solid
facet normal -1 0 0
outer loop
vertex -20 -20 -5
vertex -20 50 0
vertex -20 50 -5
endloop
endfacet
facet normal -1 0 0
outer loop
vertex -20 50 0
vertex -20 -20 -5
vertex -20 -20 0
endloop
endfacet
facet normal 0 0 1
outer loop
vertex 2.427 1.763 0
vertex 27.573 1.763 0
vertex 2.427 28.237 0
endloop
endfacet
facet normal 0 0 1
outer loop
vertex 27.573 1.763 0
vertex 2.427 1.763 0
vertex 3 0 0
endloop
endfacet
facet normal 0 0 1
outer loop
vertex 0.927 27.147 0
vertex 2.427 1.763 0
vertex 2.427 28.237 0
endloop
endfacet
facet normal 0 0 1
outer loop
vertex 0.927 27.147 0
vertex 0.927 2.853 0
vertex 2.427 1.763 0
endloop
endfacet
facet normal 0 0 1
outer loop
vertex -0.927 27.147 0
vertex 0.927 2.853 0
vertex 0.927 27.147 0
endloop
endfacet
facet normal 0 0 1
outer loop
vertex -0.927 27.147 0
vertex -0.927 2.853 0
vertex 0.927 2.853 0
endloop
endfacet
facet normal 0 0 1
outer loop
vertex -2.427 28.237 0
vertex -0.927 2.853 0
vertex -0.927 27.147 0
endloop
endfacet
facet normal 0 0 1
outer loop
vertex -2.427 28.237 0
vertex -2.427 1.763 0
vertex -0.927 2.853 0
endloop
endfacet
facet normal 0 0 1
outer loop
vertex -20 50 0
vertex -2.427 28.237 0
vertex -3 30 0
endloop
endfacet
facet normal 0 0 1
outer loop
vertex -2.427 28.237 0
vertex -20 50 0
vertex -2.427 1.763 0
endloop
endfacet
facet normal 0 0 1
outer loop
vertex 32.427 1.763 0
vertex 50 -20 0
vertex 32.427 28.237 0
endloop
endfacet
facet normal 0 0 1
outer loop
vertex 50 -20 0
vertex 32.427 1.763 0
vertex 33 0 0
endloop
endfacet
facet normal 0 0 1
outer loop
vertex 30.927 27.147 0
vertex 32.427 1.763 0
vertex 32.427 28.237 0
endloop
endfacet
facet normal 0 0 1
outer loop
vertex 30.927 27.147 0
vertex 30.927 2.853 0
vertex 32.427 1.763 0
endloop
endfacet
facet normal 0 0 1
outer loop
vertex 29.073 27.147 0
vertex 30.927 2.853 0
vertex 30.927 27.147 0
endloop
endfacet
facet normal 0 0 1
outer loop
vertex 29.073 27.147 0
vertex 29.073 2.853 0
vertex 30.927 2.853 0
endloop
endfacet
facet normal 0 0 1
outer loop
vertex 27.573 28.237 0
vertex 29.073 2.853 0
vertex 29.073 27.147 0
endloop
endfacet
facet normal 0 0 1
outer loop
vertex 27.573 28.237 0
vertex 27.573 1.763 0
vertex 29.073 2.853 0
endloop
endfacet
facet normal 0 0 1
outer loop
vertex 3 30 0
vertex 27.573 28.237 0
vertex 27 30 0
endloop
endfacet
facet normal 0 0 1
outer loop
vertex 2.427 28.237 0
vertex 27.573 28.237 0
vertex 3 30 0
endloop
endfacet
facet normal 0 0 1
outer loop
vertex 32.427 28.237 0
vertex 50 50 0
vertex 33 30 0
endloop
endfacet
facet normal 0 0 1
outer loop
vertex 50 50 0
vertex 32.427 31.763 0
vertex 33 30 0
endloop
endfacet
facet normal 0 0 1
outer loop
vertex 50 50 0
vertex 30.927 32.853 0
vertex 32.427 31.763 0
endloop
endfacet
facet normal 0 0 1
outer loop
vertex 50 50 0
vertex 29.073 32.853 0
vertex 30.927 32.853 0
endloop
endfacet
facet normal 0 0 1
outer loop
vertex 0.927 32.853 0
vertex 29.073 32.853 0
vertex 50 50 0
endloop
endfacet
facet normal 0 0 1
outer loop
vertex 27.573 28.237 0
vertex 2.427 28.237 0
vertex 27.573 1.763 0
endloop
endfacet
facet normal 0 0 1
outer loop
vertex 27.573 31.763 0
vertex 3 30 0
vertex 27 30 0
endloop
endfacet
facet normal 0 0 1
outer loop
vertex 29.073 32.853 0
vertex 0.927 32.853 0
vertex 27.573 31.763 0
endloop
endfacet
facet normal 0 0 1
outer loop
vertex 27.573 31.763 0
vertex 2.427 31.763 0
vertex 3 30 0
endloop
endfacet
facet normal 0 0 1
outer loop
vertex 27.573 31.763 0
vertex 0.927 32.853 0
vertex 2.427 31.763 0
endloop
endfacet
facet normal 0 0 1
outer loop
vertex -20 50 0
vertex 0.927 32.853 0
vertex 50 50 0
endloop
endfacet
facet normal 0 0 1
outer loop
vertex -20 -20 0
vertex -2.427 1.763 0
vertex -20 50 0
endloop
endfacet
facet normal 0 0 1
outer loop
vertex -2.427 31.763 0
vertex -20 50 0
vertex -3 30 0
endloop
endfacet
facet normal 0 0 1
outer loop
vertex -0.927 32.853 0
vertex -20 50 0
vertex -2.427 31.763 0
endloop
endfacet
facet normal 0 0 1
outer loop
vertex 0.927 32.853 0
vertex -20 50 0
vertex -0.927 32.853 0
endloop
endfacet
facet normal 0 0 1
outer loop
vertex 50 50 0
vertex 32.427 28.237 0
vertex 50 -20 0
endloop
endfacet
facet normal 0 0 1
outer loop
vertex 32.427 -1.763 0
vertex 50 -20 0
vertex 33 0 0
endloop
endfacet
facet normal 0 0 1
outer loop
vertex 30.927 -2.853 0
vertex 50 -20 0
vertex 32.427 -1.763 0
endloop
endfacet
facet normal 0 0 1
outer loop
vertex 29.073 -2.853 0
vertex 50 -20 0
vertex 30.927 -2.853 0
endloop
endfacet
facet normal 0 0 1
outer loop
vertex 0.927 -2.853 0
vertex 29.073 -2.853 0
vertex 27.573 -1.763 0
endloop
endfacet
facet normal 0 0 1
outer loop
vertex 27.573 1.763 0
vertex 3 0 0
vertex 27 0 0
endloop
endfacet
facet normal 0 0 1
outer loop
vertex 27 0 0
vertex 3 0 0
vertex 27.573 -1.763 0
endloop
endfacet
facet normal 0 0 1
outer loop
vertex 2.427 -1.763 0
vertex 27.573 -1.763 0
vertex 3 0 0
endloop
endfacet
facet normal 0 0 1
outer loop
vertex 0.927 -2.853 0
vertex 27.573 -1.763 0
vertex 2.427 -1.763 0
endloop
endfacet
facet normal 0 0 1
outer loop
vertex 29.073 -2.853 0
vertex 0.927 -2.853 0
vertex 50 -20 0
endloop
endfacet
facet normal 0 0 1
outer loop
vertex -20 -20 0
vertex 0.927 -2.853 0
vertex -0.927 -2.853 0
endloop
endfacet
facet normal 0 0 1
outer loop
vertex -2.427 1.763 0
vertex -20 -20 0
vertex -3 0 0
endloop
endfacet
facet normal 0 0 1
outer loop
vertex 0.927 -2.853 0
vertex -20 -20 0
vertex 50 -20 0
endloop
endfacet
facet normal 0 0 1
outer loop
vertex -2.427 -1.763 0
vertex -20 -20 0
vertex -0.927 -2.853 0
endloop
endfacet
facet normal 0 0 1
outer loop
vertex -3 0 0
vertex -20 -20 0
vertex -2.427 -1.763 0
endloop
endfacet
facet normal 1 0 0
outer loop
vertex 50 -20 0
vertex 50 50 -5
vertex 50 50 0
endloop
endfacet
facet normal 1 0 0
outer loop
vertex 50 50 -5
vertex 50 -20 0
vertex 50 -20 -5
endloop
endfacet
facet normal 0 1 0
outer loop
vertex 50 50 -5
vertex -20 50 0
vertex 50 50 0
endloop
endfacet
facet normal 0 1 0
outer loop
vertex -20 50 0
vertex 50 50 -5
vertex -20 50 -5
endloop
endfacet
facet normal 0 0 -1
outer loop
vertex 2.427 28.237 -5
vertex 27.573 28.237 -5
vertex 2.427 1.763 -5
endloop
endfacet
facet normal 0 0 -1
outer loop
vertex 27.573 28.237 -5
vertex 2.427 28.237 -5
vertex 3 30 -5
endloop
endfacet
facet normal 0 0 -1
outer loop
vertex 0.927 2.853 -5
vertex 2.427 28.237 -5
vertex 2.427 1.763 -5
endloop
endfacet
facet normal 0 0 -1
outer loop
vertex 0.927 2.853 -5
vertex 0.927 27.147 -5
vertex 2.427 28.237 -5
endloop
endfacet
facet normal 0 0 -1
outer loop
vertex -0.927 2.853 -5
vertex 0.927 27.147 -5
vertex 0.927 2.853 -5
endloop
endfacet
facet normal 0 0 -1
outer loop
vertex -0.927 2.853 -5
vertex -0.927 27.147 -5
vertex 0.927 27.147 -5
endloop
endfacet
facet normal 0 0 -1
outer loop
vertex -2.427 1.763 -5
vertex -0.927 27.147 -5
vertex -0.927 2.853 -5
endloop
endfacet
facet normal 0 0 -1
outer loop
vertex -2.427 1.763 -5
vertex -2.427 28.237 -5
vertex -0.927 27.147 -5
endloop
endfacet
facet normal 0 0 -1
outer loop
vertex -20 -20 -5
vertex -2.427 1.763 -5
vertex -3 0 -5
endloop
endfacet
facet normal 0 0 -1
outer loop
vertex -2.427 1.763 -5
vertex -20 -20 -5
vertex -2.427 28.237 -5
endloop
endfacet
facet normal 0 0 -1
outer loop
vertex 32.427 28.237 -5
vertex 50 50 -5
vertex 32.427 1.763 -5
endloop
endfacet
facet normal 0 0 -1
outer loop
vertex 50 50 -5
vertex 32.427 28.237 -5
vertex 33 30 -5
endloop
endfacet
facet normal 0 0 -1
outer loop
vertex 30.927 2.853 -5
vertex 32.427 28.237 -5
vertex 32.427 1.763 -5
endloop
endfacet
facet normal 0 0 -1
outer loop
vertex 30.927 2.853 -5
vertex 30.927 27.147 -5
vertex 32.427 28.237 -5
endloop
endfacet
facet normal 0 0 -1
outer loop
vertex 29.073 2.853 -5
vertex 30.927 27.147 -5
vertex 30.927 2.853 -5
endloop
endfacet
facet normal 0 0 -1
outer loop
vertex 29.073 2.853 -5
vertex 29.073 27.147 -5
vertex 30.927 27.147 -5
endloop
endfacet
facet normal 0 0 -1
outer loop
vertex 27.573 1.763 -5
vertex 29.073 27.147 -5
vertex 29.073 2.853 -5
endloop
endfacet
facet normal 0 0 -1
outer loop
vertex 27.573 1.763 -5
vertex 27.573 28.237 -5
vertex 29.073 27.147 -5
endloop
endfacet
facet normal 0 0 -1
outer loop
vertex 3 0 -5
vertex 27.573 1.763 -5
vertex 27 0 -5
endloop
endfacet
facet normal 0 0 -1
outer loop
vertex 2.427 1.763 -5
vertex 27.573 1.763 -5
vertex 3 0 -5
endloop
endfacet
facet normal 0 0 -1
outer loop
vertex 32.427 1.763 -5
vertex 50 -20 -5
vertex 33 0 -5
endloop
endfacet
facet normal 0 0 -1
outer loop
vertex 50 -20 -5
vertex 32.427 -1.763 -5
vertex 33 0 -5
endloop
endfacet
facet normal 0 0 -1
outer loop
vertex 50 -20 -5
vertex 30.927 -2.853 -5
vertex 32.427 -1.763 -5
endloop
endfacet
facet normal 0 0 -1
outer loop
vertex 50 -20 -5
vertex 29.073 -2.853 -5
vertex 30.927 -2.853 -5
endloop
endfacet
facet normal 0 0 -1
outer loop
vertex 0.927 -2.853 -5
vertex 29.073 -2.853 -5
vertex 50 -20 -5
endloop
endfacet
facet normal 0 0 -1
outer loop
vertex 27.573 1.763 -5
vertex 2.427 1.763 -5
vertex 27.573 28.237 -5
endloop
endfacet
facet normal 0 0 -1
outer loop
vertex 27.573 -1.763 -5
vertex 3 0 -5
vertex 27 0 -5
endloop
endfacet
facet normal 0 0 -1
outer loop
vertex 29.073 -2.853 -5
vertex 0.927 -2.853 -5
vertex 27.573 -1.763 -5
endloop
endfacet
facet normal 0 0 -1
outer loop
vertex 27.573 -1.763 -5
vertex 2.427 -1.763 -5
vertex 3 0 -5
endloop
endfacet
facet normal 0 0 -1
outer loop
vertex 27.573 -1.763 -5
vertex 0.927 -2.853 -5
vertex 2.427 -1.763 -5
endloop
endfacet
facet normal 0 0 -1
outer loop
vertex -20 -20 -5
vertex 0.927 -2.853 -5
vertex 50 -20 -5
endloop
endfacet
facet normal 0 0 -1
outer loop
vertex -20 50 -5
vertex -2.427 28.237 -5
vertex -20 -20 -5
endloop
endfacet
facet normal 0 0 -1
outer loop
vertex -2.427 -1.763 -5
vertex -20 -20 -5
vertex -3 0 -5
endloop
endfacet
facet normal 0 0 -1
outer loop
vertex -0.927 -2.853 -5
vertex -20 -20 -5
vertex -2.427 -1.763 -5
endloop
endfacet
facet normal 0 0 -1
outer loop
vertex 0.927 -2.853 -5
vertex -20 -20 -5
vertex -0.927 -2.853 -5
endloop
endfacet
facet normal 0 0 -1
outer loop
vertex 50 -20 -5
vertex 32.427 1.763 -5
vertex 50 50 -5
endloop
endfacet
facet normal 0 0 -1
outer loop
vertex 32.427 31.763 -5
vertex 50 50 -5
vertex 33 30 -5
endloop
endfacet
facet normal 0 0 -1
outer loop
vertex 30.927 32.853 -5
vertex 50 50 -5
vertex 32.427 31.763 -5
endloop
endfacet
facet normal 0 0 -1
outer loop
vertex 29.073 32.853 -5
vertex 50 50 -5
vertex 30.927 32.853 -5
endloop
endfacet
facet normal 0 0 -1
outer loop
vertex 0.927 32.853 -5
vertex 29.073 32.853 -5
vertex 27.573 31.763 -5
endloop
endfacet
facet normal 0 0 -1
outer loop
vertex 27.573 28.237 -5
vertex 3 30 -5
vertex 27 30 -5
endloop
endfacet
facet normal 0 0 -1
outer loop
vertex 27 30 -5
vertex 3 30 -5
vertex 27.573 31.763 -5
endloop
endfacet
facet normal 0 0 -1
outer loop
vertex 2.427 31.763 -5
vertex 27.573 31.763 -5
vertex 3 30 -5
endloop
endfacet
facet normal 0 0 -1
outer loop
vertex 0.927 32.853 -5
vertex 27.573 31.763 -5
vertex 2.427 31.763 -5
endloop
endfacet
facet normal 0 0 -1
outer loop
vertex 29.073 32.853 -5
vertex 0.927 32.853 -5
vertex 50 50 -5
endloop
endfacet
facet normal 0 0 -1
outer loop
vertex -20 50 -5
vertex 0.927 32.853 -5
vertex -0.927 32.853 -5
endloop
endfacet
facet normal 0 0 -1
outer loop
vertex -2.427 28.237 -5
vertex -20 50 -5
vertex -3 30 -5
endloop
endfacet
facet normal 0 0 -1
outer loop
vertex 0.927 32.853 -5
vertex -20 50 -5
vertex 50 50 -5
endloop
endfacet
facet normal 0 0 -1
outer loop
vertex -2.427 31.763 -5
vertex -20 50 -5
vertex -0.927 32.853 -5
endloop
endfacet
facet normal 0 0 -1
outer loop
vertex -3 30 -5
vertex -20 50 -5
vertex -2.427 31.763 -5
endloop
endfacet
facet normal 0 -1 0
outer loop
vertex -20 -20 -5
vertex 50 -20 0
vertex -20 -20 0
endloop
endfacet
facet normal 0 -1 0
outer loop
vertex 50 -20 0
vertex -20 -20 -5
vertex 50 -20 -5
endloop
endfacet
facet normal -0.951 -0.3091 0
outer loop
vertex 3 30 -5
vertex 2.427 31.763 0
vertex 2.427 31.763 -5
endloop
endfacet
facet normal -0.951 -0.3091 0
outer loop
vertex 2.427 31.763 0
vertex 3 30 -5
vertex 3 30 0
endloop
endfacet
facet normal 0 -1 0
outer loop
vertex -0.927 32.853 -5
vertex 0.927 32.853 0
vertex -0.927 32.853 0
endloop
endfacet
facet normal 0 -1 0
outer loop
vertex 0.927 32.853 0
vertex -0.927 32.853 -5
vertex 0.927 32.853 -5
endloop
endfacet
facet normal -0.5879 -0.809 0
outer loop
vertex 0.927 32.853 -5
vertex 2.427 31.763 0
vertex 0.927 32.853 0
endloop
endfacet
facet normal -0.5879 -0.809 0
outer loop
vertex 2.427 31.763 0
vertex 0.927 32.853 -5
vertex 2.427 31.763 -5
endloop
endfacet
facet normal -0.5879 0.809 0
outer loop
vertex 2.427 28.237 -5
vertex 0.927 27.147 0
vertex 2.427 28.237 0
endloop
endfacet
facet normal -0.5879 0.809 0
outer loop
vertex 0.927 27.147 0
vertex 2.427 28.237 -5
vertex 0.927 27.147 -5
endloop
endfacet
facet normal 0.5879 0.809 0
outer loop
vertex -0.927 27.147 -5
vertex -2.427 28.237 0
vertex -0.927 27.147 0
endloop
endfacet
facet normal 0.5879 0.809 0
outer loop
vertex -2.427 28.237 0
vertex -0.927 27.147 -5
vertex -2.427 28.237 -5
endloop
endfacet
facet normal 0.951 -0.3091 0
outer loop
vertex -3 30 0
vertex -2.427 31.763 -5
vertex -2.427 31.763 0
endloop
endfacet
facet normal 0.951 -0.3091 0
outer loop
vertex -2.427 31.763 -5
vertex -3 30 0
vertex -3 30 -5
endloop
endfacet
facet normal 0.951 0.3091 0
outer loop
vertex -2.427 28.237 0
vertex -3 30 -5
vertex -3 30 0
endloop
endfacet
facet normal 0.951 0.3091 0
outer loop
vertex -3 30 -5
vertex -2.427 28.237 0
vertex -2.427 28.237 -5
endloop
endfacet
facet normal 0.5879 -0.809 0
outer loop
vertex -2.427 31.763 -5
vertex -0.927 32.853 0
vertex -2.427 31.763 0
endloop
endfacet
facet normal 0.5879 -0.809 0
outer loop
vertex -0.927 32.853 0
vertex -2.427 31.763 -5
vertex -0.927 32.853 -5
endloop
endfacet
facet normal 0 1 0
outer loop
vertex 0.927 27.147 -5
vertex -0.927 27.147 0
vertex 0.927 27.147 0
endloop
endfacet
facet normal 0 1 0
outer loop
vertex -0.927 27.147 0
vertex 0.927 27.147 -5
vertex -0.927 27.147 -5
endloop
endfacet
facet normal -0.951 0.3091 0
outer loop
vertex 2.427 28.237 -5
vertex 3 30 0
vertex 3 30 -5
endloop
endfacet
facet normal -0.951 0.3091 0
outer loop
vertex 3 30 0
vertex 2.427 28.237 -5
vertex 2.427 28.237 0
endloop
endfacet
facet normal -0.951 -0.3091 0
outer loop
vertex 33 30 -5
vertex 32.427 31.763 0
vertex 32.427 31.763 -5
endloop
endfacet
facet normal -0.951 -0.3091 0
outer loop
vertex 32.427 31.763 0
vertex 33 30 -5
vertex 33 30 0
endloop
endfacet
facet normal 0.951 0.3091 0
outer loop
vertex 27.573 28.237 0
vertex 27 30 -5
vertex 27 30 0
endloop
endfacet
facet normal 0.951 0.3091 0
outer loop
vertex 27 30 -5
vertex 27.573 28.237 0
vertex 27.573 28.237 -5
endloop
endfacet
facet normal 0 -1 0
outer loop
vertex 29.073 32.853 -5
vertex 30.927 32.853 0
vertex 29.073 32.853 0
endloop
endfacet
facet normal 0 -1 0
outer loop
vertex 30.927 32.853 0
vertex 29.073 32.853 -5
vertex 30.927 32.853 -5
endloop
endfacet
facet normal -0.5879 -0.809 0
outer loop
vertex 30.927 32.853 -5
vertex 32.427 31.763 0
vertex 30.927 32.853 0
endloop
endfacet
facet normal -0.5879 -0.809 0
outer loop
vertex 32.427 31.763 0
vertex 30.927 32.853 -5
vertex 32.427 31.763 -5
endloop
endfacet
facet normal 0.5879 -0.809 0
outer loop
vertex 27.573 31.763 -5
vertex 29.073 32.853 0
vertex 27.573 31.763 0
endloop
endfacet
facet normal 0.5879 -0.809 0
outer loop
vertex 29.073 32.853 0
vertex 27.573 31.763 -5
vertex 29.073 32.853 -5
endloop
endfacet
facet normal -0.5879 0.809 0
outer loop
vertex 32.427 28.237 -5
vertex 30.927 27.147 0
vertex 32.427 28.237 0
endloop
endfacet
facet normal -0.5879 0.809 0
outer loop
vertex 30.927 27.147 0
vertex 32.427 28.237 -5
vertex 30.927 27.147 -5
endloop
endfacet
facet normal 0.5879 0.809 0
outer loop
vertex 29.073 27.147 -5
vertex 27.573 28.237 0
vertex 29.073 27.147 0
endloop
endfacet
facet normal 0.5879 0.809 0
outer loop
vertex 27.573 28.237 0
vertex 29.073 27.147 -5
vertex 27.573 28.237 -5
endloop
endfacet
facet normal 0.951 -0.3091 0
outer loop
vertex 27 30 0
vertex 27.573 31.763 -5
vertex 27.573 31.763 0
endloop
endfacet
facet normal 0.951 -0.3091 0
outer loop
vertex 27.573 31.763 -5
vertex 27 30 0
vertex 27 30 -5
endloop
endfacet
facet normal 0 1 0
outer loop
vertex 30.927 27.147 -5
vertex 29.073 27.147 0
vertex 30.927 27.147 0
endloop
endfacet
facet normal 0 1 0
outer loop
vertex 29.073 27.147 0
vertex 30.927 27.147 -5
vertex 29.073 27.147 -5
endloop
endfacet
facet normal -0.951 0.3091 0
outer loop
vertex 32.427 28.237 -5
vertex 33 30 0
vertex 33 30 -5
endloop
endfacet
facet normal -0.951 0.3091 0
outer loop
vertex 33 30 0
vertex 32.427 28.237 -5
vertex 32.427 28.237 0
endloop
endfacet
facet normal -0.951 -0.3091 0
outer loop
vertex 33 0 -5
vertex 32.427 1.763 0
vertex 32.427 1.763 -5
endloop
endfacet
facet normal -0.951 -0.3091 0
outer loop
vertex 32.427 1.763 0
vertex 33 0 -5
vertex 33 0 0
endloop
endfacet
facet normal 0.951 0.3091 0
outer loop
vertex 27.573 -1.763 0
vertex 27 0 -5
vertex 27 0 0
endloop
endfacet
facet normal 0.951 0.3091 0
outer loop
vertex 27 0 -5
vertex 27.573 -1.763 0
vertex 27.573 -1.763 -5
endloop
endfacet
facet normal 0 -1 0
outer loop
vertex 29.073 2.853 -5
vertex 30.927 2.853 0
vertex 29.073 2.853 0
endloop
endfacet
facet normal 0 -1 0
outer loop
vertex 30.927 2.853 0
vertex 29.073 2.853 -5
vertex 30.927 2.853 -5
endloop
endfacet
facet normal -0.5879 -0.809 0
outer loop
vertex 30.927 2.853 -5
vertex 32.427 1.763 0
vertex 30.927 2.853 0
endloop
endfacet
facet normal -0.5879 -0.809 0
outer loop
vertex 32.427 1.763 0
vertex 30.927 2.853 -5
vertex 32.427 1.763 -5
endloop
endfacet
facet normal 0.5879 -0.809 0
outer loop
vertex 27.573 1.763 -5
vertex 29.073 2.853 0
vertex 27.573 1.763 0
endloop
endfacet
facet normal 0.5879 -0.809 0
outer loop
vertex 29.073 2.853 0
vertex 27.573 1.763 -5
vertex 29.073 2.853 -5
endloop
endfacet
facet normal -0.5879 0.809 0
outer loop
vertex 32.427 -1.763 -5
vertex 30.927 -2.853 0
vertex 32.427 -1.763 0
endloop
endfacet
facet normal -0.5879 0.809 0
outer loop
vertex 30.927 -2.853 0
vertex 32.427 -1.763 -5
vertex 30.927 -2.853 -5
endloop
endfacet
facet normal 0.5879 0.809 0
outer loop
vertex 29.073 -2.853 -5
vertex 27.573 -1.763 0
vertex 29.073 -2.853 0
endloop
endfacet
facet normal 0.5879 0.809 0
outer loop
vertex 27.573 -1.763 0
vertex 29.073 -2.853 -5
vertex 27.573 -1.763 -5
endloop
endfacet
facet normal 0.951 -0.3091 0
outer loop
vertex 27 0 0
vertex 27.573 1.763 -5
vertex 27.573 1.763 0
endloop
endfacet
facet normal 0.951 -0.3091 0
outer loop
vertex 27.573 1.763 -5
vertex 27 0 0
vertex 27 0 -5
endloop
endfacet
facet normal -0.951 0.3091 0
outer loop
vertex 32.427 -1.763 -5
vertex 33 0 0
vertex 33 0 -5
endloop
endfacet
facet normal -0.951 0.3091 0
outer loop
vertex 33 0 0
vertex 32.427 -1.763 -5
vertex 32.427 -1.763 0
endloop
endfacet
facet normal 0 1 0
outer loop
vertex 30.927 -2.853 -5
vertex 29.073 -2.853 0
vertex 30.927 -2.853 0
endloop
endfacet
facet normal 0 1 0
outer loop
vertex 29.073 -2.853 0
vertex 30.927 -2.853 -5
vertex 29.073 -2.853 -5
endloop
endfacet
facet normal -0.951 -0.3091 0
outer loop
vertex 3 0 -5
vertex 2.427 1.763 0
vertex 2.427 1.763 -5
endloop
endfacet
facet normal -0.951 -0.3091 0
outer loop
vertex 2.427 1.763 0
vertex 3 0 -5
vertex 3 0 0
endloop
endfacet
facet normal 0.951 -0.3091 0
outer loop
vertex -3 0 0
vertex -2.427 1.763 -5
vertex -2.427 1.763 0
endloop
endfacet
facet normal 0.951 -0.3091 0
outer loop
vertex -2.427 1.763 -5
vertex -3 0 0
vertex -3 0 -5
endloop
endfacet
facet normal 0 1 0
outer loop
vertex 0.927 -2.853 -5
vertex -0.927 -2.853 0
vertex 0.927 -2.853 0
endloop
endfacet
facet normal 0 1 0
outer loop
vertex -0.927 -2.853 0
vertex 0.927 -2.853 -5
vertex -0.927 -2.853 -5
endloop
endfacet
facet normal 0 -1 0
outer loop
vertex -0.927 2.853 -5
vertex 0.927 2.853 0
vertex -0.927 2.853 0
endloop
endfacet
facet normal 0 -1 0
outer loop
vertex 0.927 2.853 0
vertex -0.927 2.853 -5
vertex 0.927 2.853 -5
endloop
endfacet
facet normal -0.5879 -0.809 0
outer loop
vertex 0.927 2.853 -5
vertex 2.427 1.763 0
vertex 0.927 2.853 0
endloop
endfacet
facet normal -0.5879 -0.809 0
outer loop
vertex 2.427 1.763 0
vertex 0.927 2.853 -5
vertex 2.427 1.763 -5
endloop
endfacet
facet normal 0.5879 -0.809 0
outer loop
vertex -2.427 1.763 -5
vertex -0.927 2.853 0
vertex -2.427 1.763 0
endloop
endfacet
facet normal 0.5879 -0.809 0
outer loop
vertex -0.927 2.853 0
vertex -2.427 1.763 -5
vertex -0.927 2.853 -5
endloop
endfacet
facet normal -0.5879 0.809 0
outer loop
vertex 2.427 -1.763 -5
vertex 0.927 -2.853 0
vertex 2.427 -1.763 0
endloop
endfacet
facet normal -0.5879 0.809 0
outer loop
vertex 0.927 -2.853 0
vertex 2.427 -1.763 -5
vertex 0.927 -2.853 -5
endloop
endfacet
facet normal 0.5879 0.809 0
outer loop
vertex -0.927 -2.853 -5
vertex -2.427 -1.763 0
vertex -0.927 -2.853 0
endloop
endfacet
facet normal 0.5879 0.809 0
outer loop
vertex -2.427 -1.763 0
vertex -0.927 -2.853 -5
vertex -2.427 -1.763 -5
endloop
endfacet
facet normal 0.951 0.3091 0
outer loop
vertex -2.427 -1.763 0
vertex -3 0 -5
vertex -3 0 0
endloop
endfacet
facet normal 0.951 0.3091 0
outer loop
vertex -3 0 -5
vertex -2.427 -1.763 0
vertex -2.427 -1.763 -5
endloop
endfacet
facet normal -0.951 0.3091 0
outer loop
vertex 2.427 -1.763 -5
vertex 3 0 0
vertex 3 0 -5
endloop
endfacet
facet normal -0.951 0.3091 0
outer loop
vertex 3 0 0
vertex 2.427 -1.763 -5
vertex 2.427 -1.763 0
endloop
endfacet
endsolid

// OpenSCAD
difference(){
translate([-20,-20,-5])
    cube([70,70,5]);
#translate([0,30,-5])cylinder(h=5, r1=3,r2=3);
#translate([30,30,-5])cylinder(h=5, r1=3,r2=3);
#translate([30,0,-5])cylinder(h=5, r1=3,r2=3);
#translate([0,0,-5])cylinder(h=5, r1=3,r2=3);
}
